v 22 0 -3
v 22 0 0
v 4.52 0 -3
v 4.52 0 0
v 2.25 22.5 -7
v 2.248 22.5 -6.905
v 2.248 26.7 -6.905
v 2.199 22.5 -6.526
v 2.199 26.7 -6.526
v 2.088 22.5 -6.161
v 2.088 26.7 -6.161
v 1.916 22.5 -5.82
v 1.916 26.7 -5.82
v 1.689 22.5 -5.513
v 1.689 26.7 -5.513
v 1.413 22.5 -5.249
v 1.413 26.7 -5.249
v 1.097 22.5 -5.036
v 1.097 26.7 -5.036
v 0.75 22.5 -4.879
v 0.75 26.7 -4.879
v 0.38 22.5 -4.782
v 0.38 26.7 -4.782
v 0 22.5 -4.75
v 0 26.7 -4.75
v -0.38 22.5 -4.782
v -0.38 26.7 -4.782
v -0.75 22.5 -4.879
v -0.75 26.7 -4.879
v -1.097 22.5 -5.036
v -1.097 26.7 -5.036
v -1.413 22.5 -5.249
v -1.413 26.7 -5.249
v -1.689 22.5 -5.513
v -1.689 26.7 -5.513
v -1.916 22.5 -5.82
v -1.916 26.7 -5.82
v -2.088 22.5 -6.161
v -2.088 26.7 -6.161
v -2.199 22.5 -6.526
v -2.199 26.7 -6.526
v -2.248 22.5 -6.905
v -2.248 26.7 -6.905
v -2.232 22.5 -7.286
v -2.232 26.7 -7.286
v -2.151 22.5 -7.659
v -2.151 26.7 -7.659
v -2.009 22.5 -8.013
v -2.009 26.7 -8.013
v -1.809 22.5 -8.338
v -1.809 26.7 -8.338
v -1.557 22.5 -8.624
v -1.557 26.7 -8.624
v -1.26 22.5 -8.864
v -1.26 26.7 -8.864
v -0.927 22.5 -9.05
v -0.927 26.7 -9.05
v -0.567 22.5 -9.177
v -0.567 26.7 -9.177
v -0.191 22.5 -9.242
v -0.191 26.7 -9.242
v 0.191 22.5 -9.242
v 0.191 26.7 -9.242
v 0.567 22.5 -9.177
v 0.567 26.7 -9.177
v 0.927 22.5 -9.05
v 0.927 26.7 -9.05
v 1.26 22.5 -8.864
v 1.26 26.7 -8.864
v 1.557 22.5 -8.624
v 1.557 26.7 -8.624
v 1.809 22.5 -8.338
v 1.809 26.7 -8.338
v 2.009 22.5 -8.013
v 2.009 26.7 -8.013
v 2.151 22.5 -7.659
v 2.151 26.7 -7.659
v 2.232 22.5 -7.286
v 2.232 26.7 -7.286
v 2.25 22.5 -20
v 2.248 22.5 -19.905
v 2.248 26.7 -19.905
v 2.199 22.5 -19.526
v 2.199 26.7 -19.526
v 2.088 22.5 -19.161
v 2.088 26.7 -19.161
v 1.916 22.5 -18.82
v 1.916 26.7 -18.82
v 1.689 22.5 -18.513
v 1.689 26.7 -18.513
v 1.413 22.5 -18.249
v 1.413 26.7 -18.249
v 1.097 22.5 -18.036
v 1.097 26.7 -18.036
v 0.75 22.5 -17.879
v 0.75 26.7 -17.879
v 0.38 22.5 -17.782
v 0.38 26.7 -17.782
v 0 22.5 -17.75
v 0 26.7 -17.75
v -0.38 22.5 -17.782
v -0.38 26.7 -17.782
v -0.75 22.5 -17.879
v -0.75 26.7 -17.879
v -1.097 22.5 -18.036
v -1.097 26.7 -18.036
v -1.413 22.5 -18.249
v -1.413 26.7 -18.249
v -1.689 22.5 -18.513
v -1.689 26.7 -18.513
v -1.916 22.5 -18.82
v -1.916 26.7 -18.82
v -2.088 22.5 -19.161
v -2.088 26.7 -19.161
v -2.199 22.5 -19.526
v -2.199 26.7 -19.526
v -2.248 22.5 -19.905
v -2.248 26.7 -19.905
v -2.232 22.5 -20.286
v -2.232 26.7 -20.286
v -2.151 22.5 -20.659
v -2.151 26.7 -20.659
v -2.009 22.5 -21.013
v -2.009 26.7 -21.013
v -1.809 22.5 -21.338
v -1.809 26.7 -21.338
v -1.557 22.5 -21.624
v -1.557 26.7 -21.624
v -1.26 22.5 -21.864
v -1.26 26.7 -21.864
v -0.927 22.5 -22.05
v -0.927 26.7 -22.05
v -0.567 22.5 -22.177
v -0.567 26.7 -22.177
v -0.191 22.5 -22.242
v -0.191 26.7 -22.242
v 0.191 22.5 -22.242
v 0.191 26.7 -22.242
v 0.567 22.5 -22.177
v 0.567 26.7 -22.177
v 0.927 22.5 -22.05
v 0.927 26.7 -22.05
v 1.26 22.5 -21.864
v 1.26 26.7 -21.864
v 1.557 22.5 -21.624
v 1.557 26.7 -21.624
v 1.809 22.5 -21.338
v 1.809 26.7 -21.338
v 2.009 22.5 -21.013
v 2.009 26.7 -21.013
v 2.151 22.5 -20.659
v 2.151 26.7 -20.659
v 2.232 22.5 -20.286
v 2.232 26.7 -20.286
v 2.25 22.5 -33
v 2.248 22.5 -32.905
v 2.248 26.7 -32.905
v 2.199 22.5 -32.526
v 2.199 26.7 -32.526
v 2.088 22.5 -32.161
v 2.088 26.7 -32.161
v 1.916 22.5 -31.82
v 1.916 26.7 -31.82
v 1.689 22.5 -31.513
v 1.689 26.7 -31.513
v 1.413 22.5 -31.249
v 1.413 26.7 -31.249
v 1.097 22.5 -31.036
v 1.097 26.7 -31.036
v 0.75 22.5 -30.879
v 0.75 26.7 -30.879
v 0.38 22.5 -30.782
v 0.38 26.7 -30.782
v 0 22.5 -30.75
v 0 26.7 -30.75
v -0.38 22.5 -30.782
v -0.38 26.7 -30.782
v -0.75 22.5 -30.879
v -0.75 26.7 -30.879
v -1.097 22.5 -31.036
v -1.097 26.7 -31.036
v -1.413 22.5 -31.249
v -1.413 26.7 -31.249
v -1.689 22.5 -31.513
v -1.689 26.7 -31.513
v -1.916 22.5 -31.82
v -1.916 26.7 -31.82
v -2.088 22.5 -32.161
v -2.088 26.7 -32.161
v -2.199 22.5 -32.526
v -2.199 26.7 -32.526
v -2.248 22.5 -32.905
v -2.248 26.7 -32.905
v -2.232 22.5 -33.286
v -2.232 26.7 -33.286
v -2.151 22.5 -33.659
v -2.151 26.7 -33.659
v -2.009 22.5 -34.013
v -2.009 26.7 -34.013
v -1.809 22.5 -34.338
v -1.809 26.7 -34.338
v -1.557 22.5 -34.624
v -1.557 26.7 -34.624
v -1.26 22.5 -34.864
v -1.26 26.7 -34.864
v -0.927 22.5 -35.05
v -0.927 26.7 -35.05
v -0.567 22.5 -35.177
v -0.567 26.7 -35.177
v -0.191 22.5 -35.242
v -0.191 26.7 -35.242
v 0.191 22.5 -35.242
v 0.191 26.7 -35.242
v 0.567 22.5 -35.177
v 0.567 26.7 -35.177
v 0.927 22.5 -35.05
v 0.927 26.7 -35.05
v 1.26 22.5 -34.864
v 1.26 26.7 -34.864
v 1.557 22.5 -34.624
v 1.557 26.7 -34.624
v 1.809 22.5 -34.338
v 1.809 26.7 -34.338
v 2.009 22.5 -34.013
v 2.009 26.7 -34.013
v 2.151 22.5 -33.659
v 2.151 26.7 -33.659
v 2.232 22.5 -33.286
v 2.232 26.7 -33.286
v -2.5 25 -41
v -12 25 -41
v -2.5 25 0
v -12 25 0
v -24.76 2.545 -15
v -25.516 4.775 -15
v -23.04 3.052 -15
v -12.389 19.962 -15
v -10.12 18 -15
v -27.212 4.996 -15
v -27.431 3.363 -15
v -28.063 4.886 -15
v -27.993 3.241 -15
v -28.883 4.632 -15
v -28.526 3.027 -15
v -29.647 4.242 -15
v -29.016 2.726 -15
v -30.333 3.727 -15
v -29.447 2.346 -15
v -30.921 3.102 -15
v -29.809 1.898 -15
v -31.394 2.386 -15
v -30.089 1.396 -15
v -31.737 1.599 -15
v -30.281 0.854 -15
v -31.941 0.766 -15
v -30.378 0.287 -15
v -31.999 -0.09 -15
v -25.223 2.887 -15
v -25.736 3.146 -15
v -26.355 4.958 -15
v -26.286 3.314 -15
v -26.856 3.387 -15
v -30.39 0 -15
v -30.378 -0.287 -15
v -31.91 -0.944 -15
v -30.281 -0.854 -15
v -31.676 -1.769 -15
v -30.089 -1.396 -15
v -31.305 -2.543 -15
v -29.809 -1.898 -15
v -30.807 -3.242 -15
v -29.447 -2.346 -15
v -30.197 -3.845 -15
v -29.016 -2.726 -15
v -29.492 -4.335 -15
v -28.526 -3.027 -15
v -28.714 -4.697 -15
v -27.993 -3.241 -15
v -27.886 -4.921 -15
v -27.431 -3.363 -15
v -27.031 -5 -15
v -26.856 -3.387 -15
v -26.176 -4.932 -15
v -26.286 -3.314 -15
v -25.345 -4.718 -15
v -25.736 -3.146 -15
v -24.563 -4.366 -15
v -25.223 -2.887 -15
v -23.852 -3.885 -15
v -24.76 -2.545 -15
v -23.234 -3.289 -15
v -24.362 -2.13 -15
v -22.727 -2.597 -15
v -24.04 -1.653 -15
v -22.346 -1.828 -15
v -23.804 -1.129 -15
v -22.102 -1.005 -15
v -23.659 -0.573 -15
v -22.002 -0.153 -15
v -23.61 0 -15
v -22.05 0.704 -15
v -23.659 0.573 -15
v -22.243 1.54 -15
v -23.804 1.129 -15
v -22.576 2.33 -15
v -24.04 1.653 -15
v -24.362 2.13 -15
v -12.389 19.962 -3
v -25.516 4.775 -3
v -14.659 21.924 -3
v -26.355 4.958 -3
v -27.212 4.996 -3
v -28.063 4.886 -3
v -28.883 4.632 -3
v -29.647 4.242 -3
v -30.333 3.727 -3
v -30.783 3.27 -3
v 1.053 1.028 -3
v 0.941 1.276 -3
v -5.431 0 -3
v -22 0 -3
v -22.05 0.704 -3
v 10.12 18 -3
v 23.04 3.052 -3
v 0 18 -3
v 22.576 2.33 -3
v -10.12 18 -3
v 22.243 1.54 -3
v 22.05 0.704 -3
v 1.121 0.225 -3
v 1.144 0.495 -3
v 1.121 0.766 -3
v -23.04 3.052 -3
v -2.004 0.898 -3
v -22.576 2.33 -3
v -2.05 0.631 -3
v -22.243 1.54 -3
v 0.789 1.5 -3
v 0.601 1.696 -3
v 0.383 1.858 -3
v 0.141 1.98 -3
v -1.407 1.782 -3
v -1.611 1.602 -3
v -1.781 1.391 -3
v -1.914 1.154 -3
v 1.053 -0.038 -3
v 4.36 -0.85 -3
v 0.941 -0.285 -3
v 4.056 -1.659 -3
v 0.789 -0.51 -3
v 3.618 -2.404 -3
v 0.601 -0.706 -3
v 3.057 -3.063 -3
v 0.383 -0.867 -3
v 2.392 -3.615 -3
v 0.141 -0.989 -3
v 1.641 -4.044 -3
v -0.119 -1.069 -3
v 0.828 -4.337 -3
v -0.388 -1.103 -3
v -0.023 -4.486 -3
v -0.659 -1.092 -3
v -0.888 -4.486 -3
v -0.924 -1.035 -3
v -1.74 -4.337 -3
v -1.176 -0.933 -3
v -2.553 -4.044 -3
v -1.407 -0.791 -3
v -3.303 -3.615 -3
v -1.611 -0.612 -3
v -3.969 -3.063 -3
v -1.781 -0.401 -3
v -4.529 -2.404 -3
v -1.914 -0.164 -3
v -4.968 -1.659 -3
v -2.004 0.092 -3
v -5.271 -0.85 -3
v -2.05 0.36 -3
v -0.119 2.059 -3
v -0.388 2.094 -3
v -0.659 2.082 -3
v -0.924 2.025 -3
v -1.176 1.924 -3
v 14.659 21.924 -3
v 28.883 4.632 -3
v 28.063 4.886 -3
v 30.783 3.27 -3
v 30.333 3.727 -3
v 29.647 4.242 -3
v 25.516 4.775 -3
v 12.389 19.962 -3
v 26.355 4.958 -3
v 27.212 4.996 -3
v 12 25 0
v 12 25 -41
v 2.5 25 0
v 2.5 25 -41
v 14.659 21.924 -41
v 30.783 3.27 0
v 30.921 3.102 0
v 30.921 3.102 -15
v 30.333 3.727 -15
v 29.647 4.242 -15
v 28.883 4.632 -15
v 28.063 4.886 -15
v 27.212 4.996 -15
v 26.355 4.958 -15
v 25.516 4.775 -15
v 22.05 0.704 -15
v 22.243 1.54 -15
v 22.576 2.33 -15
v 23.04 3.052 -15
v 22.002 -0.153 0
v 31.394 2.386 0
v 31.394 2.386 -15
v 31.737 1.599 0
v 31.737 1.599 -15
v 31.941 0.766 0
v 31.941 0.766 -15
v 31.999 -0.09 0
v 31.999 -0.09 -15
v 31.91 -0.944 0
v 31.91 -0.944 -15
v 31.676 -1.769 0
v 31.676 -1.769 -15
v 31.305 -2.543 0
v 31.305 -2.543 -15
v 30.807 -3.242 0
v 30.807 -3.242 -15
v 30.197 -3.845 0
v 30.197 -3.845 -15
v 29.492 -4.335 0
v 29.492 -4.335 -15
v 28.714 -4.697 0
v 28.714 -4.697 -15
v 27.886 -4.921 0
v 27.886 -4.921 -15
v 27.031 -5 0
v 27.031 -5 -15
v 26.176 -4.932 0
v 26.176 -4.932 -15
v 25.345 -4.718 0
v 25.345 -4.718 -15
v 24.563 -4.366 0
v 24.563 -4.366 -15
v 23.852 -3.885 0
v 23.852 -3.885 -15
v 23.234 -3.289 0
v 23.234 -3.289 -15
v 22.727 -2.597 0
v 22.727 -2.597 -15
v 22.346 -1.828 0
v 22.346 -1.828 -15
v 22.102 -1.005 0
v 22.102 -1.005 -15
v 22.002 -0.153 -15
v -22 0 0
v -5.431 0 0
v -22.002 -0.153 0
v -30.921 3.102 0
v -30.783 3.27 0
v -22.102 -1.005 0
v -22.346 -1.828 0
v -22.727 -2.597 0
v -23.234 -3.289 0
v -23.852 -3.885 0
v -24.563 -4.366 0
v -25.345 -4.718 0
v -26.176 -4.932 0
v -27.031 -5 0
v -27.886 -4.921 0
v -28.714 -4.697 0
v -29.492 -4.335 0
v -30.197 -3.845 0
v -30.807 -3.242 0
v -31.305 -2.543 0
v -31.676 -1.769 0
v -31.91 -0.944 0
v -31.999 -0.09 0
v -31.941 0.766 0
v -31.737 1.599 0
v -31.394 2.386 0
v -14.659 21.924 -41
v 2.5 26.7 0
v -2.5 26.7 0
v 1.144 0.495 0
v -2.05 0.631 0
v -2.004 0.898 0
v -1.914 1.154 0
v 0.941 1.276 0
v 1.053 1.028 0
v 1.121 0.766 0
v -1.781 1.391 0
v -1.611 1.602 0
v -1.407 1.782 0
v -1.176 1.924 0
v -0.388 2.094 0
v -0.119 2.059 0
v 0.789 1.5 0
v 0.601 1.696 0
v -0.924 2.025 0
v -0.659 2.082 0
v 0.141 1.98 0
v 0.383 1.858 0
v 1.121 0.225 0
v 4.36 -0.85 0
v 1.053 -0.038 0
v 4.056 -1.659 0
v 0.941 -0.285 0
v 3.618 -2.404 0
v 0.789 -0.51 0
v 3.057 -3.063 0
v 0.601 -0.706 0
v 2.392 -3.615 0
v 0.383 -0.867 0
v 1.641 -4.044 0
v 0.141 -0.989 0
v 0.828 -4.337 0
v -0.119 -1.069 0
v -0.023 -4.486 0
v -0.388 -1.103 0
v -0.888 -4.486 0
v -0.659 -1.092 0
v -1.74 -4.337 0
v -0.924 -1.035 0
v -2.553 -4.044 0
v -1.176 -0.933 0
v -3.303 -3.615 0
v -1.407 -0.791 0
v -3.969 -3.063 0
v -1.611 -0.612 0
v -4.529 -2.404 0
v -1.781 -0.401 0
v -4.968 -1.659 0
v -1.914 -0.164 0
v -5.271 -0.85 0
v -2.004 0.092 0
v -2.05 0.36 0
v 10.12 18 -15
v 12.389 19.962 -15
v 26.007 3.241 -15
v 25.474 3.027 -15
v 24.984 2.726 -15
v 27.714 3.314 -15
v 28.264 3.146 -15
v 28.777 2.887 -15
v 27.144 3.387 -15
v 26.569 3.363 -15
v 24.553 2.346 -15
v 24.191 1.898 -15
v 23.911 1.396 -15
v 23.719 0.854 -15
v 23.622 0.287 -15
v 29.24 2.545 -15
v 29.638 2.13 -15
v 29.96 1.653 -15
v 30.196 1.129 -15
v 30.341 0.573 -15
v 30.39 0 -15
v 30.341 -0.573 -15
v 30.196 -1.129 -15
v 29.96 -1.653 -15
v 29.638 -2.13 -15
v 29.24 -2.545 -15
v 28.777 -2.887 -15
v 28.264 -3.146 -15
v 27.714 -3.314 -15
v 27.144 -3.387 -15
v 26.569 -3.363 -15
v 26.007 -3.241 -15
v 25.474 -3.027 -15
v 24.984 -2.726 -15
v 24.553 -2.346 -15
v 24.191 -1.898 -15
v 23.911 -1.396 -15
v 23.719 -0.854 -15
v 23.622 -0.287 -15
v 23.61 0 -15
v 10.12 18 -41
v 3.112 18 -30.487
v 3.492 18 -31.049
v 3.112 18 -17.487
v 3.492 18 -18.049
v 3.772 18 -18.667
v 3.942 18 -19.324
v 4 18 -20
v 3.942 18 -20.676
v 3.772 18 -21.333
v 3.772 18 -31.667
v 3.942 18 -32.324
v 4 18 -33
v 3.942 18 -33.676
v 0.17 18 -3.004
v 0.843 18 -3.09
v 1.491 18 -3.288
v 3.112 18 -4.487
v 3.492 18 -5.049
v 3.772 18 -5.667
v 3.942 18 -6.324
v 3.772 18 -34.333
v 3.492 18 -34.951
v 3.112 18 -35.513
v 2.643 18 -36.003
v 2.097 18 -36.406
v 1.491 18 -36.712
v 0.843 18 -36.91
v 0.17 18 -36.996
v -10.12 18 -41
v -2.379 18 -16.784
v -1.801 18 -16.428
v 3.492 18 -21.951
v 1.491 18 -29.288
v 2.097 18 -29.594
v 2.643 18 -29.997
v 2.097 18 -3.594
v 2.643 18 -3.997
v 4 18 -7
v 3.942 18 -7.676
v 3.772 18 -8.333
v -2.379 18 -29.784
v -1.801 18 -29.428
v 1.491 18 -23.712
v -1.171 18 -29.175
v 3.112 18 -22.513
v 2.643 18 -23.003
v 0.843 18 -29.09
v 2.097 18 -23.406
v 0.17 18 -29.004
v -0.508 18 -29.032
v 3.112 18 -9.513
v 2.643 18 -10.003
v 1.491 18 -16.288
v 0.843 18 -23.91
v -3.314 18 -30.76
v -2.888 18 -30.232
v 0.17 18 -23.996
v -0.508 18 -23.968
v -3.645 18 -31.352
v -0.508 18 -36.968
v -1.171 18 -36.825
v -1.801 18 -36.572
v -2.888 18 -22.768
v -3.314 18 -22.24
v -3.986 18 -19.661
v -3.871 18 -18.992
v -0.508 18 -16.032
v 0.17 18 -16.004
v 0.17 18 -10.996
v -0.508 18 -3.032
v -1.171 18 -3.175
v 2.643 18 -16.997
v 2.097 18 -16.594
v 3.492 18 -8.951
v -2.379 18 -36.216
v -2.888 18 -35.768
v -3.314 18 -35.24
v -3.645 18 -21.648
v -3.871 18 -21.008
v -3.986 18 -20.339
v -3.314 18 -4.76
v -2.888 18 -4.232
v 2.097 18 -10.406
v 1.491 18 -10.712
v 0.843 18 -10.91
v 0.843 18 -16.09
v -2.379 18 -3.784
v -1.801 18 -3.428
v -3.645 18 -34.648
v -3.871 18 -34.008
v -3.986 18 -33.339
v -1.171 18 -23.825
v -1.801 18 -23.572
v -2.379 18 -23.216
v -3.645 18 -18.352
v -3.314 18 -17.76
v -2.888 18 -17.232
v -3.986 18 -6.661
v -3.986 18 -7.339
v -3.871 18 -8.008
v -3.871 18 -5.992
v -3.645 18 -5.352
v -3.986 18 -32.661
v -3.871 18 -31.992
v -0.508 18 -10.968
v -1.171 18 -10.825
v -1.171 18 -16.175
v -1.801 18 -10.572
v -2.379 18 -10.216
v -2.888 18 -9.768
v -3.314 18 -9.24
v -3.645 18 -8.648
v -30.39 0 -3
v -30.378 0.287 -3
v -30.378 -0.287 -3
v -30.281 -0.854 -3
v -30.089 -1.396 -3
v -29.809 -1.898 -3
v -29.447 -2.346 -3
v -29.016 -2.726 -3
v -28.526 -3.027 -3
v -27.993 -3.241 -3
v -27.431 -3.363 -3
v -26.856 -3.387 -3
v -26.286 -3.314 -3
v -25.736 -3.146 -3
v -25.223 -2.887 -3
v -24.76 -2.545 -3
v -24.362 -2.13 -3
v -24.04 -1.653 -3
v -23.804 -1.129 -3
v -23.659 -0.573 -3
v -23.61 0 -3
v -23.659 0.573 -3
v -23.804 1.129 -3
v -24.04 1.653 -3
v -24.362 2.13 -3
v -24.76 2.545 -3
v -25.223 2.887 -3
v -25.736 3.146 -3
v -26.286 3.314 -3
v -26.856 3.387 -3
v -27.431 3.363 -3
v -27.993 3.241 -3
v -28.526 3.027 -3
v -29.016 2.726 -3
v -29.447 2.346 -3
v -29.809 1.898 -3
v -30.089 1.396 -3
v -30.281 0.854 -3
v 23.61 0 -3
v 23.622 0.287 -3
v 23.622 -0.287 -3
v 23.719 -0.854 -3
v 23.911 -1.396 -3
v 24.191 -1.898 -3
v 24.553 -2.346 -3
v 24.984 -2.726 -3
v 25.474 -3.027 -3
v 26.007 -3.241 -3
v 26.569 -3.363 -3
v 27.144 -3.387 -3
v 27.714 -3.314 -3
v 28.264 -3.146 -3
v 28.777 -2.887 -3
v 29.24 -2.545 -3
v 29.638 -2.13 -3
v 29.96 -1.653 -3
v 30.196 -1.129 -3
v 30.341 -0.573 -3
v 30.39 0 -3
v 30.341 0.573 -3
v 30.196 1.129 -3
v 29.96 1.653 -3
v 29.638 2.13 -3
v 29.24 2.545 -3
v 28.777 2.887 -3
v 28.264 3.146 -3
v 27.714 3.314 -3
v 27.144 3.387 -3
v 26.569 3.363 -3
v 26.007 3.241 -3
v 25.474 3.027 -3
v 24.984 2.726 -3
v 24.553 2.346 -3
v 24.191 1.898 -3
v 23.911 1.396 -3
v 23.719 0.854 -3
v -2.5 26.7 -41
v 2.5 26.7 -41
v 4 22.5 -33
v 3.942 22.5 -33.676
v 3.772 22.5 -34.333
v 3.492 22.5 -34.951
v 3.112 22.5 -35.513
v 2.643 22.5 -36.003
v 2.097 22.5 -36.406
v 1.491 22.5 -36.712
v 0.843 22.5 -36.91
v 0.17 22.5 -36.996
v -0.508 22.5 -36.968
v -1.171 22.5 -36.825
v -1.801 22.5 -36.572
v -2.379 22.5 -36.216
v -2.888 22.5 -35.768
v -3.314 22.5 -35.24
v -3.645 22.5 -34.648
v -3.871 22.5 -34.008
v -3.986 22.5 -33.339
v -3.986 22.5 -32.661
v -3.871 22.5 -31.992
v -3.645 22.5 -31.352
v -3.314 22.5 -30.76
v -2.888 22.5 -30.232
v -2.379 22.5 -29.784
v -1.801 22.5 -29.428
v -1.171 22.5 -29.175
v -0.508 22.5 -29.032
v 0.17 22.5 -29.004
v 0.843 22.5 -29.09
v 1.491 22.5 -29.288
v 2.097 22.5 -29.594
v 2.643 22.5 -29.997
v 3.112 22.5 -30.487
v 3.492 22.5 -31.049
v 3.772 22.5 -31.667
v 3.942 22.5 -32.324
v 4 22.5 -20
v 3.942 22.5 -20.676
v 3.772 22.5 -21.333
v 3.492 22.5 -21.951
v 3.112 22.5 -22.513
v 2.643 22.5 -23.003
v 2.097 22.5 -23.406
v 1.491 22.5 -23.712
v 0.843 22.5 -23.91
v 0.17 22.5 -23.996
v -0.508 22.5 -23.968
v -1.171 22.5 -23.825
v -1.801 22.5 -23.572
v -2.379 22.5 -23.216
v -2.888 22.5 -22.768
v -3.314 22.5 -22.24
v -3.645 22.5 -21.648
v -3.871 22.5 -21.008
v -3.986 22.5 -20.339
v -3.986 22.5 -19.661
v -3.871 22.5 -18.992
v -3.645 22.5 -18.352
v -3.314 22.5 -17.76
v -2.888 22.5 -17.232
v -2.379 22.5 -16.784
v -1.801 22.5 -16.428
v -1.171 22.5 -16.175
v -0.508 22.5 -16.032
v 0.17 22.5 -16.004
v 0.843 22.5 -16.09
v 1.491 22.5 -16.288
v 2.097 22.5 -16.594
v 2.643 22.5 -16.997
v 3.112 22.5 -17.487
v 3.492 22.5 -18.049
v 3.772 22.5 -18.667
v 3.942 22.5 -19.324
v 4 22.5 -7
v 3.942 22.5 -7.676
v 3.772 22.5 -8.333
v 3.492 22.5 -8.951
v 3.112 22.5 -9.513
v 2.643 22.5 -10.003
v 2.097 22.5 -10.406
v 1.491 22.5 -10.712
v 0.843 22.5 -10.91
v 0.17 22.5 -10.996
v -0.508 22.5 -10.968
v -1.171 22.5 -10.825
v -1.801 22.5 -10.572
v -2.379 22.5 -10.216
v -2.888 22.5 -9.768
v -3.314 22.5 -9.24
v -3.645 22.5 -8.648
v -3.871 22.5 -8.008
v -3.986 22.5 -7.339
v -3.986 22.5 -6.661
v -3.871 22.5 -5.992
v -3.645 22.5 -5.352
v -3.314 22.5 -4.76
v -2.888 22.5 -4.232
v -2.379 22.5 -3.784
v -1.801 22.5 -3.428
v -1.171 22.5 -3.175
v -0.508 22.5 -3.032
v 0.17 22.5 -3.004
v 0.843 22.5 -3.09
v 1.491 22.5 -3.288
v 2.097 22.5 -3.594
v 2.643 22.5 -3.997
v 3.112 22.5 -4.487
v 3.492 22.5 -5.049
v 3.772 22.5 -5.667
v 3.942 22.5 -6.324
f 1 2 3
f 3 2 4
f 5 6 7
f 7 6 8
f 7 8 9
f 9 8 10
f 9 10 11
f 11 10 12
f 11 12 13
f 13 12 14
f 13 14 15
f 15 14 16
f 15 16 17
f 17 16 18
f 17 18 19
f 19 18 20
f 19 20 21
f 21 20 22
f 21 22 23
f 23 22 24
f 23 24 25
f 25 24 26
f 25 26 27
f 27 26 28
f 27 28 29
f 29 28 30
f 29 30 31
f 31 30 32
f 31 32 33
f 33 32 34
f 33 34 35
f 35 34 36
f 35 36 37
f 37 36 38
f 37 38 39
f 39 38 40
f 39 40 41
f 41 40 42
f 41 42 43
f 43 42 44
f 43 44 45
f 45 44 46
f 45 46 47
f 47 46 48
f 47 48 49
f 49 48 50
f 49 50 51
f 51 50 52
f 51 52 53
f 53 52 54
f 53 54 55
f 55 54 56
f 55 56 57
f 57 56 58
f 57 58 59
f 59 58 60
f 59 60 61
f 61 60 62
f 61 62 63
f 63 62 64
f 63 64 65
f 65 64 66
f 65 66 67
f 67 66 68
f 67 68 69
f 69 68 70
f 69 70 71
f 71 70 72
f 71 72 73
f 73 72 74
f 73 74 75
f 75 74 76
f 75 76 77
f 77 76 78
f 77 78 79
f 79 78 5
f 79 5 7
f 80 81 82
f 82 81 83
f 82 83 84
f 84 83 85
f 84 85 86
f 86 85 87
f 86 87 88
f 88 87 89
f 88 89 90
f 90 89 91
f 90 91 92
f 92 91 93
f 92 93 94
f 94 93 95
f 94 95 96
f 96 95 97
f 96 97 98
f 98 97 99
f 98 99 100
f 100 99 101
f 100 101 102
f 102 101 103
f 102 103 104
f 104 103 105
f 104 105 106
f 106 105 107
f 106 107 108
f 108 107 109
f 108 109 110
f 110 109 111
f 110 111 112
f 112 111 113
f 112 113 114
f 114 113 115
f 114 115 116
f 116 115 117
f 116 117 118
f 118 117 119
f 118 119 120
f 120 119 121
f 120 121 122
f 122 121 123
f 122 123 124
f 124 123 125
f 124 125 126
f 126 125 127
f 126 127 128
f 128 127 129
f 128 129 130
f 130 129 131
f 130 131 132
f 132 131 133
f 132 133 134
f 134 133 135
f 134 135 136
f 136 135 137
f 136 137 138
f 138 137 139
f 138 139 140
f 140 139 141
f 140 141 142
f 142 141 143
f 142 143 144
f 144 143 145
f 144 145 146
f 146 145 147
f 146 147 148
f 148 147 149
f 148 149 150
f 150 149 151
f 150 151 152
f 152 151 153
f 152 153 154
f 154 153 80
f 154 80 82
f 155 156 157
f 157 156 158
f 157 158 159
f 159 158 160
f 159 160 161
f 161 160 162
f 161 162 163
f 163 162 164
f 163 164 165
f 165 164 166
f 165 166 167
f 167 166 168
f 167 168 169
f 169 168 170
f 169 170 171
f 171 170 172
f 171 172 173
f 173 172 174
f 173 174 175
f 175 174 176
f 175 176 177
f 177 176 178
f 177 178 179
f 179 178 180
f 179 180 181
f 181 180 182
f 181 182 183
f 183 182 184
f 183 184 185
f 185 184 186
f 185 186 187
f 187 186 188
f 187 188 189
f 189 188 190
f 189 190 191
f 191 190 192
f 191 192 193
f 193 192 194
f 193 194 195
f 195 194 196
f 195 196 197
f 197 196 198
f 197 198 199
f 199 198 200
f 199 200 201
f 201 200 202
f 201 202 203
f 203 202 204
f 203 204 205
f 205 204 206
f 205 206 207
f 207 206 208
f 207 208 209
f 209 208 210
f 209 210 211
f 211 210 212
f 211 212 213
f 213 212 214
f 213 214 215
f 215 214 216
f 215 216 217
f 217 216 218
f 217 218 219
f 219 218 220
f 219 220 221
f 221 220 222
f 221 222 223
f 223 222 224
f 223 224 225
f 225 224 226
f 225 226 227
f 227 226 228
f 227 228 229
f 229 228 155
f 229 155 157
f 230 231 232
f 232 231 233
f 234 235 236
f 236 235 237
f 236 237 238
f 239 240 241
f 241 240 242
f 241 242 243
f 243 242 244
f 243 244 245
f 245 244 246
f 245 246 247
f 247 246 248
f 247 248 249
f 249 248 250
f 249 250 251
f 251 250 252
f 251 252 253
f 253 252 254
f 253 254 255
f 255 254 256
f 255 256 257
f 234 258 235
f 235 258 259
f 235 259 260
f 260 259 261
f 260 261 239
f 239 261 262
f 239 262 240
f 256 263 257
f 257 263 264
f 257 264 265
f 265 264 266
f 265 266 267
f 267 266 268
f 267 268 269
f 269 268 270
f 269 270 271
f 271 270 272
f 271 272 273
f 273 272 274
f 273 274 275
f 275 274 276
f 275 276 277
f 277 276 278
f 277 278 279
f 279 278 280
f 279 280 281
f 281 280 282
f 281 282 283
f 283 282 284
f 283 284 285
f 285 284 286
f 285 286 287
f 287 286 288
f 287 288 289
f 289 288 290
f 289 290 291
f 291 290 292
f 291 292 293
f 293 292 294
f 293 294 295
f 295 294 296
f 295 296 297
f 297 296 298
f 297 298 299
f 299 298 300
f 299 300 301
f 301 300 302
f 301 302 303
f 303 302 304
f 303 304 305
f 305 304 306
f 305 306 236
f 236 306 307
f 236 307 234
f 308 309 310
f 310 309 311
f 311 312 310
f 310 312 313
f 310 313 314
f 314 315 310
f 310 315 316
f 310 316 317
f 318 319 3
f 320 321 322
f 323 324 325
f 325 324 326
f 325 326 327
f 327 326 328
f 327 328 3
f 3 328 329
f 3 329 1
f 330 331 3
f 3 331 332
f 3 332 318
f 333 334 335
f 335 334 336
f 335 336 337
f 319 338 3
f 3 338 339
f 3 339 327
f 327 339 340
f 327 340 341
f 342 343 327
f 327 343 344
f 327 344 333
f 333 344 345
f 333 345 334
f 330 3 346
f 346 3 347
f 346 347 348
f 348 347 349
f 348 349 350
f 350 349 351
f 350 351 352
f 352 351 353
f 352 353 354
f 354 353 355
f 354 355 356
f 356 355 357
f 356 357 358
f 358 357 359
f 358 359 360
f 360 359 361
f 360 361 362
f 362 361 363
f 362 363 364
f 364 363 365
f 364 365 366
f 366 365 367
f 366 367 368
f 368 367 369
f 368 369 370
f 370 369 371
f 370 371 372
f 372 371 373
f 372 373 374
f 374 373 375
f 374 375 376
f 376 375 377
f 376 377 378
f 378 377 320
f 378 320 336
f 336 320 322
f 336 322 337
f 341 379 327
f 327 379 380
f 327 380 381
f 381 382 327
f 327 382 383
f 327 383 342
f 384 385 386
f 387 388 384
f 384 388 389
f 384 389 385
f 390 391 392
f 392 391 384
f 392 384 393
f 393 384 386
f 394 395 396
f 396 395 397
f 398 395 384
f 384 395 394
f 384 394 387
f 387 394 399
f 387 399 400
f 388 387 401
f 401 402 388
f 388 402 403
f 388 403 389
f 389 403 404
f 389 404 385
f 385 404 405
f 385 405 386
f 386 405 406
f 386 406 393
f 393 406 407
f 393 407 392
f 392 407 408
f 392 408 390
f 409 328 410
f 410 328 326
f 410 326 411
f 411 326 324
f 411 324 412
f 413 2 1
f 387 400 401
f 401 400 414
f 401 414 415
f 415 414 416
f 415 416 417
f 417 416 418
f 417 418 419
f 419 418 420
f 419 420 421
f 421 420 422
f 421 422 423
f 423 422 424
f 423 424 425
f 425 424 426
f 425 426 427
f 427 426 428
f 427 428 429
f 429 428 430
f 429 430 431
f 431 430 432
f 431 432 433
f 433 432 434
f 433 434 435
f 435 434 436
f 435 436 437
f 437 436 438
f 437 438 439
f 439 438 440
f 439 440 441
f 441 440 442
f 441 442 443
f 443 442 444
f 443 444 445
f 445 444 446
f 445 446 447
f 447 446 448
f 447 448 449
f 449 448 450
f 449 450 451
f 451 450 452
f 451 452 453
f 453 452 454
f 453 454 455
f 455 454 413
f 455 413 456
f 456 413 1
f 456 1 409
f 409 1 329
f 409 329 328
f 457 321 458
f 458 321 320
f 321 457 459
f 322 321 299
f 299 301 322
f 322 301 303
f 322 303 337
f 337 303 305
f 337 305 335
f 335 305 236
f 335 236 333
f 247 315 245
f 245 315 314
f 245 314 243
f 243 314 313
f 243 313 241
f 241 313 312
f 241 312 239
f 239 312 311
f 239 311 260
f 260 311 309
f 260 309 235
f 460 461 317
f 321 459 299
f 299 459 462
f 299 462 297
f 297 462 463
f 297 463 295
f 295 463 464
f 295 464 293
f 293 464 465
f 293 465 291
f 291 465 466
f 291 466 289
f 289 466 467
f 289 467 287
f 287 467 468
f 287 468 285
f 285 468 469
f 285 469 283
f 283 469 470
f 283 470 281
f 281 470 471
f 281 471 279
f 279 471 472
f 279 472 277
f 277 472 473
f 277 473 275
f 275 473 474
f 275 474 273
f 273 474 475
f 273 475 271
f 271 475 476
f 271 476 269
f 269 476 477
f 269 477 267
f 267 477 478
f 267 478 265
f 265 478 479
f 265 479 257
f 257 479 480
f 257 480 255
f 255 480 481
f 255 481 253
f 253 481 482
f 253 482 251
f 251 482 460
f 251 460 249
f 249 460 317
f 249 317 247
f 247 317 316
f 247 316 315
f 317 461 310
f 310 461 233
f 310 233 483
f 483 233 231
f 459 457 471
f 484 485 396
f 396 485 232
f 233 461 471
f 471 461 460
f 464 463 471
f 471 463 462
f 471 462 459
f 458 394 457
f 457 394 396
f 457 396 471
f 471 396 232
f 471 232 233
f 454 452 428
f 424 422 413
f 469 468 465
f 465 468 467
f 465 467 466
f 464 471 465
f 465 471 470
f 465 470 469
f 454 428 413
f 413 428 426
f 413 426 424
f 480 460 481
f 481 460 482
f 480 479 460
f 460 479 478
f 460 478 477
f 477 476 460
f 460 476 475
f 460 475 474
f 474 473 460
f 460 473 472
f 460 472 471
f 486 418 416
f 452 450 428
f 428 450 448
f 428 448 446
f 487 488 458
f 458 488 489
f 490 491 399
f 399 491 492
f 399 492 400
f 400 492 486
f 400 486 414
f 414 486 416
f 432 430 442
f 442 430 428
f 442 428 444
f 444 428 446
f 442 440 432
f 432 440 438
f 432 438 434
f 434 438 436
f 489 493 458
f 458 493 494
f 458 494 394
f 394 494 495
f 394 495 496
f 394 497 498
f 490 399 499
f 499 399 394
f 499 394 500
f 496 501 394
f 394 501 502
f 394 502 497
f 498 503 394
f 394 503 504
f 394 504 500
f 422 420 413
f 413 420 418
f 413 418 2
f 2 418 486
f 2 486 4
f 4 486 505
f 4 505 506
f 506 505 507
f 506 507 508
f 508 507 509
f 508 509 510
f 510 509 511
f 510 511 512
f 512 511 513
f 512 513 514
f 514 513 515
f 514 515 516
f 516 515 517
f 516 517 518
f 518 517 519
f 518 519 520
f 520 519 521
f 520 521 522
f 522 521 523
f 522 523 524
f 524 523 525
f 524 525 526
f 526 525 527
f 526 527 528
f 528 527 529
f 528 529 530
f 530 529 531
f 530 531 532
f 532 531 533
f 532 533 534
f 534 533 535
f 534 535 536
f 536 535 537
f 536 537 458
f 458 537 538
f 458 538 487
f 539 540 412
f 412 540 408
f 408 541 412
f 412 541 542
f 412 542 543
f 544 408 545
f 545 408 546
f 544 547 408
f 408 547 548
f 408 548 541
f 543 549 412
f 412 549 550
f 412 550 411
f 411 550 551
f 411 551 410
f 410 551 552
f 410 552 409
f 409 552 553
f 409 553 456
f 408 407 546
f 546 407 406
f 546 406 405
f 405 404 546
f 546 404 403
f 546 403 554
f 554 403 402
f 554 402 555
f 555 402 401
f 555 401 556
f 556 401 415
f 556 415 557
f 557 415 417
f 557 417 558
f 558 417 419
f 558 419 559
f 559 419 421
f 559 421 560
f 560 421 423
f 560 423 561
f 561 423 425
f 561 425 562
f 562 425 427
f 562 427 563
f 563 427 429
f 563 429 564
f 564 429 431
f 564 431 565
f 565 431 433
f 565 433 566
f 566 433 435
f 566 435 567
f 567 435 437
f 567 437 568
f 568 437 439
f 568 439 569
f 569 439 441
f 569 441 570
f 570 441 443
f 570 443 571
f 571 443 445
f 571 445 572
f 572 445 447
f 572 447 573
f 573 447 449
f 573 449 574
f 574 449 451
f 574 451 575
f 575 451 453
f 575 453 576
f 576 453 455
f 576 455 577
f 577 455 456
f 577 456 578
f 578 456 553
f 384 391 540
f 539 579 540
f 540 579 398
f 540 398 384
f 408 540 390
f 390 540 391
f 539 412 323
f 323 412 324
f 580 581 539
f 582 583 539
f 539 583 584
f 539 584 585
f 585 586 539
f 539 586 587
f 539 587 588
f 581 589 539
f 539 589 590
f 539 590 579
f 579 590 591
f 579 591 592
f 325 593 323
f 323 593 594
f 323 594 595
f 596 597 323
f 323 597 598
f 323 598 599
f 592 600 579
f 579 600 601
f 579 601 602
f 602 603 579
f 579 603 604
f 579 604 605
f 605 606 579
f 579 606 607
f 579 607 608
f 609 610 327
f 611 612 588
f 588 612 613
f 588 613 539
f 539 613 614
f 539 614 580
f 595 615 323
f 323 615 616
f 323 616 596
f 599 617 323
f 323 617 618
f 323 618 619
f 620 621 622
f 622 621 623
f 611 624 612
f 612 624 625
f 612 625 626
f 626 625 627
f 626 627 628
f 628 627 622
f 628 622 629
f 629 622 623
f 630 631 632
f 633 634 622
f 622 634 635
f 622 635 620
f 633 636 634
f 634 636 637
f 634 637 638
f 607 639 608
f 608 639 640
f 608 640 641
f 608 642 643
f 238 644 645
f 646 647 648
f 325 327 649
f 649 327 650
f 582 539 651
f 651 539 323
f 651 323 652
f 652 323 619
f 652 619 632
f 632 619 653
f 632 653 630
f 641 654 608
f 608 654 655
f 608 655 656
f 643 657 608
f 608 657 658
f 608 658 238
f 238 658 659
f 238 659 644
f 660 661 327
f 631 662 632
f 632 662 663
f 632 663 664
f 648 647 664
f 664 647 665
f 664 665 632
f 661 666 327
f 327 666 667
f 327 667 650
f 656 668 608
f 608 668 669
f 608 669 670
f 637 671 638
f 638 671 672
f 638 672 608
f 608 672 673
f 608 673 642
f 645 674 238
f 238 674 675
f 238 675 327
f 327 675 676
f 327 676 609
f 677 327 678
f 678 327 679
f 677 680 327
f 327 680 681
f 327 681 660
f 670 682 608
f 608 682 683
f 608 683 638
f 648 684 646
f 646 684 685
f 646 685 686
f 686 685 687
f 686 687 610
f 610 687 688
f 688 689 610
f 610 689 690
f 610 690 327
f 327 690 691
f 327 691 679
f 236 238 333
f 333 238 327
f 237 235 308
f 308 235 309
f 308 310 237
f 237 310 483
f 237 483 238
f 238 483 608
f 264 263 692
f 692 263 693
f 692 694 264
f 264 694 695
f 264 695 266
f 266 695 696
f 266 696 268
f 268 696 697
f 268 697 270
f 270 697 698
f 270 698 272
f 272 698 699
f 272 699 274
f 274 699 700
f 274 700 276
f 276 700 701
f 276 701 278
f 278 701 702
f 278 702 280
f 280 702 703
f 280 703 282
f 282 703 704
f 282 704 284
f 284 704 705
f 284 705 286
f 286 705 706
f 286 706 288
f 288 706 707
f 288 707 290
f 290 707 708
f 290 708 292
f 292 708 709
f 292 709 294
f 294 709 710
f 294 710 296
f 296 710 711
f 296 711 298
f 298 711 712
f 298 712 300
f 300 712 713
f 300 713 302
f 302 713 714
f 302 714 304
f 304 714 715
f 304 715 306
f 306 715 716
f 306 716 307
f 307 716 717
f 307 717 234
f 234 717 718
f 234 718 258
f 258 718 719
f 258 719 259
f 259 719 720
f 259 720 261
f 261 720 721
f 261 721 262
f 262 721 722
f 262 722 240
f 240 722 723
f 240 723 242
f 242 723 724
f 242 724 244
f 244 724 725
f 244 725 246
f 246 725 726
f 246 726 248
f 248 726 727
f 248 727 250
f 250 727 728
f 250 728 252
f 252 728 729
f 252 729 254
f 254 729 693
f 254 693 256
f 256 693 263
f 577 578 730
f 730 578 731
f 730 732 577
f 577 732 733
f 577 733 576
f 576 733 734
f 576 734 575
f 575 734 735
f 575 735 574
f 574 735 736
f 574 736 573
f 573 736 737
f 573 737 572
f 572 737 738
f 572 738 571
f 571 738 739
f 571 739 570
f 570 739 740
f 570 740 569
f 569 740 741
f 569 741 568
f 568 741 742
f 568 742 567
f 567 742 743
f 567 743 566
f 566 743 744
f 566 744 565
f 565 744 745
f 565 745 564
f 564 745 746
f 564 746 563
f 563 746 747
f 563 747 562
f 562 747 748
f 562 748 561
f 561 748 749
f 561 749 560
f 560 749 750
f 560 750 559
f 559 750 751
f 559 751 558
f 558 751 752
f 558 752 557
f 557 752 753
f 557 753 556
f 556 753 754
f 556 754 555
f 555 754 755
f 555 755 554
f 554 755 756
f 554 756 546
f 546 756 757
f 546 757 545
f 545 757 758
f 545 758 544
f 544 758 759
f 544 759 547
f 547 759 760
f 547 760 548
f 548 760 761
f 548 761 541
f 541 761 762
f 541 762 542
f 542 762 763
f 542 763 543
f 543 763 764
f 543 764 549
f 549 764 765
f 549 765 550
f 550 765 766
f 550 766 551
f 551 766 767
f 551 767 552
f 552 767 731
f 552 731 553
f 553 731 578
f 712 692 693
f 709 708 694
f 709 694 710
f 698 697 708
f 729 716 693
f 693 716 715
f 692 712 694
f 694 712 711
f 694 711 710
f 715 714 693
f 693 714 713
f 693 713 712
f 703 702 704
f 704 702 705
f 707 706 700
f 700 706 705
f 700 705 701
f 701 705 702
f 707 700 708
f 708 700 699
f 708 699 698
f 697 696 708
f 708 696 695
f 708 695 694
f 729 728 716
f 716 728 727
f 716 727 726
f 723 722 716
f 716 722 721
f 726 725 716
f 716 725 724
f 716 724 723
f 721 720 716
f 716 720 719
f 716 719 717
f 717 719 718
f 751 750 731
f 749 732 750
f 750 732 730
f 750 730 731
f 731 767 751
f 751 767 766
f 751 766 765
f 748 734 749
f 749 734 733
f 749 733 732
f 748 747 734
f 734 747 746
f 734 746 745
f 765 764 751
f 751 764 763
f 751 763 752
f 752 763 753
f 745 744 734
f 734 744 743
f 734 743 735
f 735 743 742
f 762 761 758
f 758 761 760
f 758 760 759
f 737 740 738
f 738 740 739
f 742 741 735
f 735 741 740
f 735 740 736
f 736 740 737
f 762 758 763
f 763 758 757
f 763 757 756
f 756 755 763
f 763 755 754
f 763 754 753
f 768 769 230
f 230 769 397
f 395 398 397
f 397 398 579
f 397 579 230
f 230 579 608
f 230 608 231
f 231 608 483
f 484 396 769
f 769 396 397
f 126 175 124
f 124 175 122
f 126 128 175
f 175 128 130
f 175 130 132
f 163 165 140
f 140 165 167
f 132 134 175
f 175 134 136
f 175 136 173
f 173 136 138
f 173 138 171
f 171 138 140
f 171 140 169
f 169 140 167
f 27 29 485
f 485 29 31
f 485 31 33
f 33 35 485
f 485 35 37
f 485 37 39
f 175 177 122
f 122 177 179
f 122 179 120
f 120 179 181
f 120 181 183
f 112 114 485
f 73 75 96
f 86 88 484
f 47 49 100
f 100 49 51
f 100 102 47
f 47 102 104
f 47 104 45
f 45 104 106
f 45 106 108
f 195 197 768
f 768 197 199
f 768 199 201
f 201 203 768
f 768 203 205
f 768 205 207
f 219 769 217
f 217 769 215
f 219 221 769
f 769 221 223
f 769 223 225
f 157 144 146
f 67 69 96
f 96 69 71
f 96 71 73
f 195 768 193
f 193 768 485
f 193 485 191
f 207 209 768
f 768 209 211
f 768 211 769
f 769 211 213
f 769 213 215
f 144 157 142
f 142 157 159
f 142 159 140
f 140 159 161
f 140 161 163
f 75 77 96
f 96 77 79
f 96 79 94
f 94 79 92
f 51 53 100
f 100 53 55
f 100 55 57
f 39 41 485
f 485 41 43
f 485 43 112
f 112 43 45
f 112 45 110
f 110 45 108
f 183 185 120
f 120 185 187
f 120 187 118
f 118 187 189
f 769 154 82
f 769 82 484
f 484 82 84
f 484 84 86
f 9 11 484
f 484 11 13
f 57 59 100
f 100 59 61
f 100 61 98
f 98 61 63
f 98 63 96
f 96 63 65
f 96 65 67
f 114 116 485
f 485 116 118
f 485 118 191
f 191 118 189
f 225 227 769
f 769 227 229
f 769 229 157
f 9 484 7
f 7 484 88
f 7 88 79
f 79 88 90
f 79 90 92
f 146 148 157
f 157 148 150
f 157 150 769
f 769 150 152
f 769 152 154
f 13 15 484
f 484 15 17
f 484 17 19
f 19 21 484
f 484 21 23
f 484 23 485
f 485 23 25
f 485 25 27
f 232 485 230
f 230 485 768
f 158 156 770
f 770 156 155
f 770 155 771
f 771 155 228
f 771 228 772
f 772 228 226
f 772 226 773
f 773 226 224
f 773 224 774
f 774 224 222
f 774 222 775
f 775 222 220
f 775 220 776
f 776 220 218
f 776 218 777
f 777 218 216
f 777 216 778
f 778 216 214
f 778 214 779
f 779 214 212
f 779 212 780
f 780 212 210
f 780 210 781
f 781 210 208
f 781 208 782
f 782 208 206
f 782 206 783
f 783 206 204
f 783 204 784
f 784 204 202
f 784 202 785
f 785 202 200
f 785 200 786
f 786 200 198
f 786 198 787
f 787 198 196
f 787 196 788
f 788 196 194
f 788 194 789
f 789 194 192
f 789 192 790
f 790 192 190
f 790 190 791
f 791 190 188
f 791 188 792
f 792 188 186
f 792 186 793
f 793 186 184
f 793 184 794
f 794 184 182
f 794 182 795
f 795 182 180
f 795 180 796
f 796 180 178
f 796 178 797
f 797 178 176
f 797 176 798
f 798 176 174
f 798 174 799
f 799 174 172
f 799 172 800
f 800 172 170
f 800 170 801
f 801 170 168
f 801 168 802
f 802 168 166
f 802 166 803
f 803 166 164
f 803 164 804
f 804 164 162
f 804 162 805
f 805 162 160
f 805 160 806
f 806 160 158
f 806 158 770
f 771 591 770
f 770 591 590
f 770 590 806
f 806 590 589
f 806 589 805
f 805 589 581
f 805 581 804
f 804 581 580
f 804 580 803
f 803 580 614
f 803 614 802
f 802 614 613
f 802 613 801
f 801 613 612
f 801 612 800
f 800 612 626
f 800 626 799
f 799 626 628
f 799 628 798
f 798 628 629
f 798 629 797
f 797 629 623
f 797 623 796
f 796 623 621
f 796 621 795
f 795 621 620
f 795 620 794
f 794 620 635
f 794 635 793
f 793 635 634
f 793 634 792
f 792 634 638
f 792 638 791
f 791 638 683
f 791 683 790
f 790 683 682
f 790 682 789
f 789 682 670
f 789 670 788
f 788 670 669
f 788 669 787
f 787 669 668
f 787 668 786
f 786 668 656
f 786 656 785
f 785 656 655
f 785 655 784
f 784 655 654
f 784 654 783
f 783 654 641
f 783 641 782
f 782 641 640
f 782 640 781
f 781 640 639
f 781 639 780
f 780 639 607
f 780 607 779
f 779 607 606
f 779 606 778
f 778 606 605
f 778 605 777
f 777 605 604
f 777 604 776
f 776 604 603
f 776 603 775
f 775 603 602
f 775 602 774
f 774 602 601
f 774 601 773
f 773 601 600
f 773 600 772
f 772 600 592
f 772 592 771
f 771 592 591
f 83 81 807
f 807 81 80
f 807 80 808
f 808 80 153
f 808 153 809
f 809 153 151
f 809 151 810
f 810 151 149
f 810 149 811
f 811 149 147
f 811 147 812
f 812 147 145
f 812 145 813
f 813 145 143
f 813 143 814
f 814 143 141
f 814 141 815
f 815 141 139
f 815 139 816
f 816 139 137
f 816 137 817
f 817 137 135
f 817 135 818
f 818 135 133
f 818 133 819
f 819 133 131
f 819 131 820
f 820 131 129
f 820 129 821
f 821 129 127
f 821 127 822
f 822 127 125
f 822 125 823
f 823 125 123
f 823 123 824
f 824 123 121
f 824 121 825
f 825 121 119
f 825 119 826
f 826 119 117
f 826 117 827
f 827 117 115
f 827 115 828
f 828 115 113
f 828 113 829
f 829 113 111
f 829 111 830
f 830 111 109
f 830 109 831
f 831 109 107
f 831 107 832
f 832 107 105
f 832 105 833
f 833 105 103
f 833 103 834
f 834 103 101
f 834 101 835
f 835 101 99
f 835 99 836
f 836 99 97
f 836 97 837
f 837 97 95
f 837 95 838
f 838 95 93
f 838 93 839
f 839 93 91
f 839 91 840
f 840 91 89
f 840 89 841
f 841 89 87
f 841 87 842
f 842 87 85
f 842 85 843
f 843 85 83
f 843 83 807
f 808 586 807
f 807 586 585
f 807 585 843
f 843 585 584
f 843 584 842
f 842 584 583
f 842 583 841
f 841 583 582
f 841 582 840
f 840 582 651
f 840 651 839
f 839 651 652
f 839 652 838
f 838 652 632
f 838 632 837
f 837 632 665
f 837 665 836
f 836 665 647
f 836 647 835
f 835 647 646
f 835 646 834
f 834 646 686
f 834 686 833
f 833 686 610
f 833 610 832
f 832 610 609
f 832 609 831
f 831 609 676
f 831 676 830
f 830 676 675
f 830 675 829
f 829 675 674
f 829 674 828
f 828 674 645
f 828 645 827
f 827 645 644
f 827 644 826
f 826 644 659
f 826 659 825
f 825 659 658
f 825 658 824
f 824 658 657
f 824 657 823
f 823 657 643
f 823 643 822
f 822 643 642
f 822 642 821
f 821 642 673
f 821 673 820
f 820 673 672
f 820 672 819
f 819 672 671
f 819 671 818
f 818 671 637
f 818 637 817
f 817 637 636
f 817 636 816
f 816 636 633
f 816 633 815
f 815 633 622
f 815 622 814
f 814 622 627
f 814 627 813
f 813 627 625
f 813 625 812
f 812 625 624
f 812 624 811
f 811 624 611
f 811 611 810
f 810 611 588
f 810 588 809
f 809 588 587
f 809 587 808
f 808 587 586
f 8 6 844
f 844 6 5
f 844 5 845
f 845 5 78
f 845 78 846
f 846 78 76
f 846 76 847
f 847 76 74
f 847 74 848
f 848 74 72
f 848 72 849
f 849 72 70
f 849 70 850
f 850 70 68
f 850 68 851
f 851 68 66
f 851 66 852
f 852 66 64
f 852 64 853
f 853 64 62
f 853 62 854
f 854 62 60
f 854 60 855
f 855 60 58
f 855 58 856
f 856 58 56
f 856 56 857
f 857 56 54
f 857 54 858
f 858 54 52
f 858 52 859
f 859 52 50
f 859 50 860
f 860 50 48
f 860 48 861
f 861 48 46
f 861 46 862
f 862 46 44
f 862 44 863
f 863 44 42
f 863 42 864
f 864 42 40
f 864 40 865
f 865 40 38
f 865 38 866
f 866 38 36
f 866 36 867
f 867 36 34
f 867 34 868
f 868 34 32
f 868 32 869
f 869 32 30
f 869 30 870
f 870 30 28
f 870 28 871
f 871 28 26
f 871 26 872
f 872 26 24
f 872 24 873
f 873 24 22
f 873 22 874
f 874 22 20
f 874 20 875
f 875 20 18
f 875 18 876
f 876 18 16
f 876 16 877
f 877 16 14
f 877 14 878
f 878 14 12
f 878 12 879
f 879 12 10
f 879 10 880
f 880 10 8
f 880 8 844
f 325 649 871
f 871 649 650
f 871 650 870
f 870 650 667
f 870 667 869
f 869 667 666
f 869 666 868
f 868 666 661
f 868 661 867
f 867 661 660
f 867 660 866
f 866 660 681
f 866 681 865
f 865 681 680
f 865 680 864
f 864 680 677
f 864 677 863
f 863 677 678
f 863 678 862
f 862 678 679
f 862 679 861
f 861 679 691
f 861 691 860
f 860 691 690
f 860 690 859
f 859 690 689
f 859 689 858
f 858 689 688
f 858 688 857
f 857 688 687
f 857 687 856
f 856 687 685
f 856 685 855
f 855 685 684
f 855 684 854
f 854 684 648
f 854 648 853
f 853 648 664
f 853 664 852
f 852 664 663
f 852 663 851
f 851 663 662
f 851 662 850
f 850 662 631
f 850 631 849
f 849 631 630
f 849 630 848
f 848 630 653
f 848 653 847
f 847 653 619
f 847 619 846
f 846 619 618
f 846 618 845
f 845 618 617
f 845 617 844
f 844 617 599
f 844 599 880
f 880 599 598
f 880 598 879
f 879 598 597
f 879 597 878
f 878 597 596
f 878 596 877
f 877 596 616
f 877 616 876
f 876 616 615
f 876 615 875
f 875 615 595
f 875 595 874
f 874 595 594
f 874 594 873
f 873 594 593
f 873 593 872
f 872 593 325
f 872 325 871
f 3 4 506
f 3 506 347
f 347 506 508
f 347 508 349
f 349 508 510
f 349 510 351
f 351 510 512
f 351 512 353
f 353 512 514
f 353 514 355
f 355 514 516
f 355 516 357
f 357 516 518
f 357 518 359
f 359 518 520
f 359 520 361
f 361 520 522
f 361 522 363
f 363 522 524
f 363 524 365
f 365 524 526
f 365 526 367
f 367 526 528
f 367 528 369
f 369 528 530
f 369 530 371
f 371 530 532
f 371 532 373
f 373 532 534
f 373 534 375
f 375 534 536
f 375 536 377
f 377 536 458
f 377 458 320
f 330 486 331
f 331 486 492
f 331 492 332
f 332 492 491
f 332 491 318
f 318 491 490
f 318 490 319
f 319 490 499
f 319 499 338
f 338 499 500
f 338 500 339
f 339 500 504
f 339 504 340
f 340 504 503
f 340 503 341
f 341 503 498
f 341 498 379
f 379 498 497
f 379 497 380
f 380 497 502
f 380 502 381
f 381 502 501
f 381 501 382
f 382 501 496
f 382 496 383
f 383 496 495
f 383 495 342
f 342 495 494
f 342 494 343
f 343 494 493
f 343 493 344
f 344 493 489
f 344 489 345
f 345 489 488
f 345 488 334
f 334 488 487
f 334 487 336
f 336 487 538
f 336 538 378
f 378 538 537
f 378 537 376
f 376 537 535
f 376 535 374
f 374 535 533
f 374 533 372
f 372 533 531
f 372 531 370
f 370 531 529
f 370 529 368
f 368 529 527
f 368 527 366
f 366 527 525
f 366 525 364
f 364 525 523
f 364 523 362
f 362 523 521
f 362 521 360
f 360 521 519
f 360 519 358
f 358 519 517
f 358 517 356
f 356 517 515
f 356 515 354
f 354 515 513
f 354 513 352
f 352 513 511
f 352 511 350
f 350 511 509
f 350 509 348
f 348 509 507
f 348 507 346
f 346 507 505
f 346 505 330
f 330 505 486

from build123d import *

# Parameters (mm, degrees)
BOSS_EXTRUDE1_DEPTH = 3
SKETCH2_R           = 3.39
BOSS_EXTRUDE2_DEPTH = 12
BOSS_EXTRUDE3_DEPTH = 26
SKETCH7_W           = 5
SKETCH7_H           = 1.7
BOSS_EXTRUDE5_DEPTH = 41
SKETCH4_R           = 2.25
CUT_EXTRUDE1_DEPTH  = 13
SKETCH8_R           = 4
CUT_EXTRUDE3_DEPTH  = 4.5
LPATTERN1_COUNT     = 3
LPATTERN1_PITCH     = 13
SKETCH5_R           = 5
BOSS_EXTRUDE4_DEPTH = 3
SKETCH6_R           = 1.6
CUT_EXTRUDE2_DEPTH  = 3


with BuildPart() as part:
    # Sketch1 → Boss-Extrude1 (new body)
    with BuildSketch(Plane.XY):
        with BuildLine():
            Line((-22, 0), (22, 0))
            ThreePointArc((22, 0), (28.74444357, -4.685820806), (30.782766652, 3.269659991))
            Line((30.782766652, 3.269659991), (12, 25))
            Line((12, 25), (-12, 25))
            Line((-12, 25), (-30.782766652, 3.269659991))
            ThreePointArc((-30.782766652, 3.269659991), (-28.74444357, -4.685820806), (-22, 0))
        make_face()
    extrude(amount=-BOSS_EXTRUDE1_DEPTH)

    # Sketch2 → Boss-Extrude2 (add)
    with BuildSketch(Plane(origin=(0, 0, -3), x_dir=(-1, 0, 0), z_dir=(0, 0, -1))):
        with BuildLine():
            Line((10.11979413, 18), (-10.11979413, 18))
            Line((-10.11979413, 18), (-23.039847225, 3.052407247))
            ThreePointArc((-23.039847225, 3.052407247), (-29.854865308, -4.104843977), (-25.51641378, 4.7748269))
            Line((-25.51641378, 4.7748269), (-12.389454122, 19.961795995))
            Line((-12.389454122, 19.961795995), (-14.659114113, 21.923591989))
            Line((-14.659114113, 21.923591989), (-12, 25))
            Line((-12, 25), (12, 25))
            Line((12, 25), (14.659114113, 21.923591989))
            Line((14.659114113, 21.923591989), (12.389454122, 19.961795995))
            Line((12.389454122, 19.961795995), (25.51641378, 4.7748269))
            ThreePointArc((25.51641378, 4.7748269), (29.854865308, -4.104843977), (23.039847225, 3.052407247))
            Line((23.039847225, 3.052407247), (10.11979413, 18))
        make_face()
        with Locations((27, 0)):
            Circle(SKETCH2_R, mode=Mode.SUBTRACT)
        with Locations((-27, 0)):
            Circle(SKETCH2_R, mode=Mode.SUBTRACT)
    extrude(amount=BOSS_EXTRUDE2_DEPTH)

    # Sketch3 → Boss-Extrude3 (add)
    with BuildSketch(Plane(origin=(0, 0, -15), x_dir=(-1, 0, 0), z_dir=(0, 0, -1))):
        Polygon((14.659114113, 21.923591989), (10.11979413, 18), (-10.11979413, 18), (-14.659114113, 21.923591989), (-12, 25), (12, 25), align=None)
    extrude(amount=BOSS_EXTRUDE3_DEPTH)

    # Sketch7 → Boss-Extrude5 (add)
    with BuildSketch(Plane(origin=(0, 0, -41), x_dir=(-1, 0, 0), z_dir=(0, 0, -1))):
        with Locations((0, 25.85)):
            Rectangle(SKETCH7_W, SKETCH7_H)
    extrude(amount=-BOSS_EXTRUDE5_DEPTH)

    # Sketch4 → Cut-Extrude1 (cut, symmetric)
    with BuildSketch(Plane(origin=(0, 25, 0), x_dir=(-1, 0, 0), z_dir=(0, 1, 0))):
        with Locations((0, -33)):
            Circle(SKETCH4_R)
        with Locations((0, -20)):
            Circle(SKETCH4_R)
        with Locations((0, -7)):
            Circle(SKETCH4_R)
    extrude(amount=CUT_EXTRUDE1_DEPTH, both=True, mode=Mode.SUBTRACT)

    # Sketch8 → Cut-Extrude3 (cut)
    with BuildSketch(Plane(origin=(0, 18, 0), x_dir=(-1, 0, 0), z_dir=(0, -1, 0))):
        with Locations((0, 33)):
            Circle(SKETCH8_R)
    cut_extrude3 = extrude(amount=-CUT_EXTRUDE3_DEPTH, mode=Mode.SUBTRACT)

    # LPattern1: Cut-Extrude3 ×3
    with Locations(*[(0, 0, i * LPATTERN1_PITCH) for i in range(1, LPATTERN1_COUNT)]):
        add(cut_extrude3, mode=Mode.SUBTRACT)

    # Sketch5 → Boss-Extrude4 (add)
    with BuildSketch(Plane.XY):
        with Locations((-0.455639948, 0.495332174)):
            Circle(SKETCH5_R)
    extrude(amount=-BOSS_EXTRUDE4_DEPTH)

    # Sketch6 → Cut-Extrude2 (cut)
    with BuildSketch(Plane.XY):
        with Locations((-0.455639948, 0.495332174)):
            Circle(SKETCH6_R)
    extrude(amount=-CUT_EXTRUDE2_DEPTH, mode=Mode.SUBTRACT)


solid = part.part
